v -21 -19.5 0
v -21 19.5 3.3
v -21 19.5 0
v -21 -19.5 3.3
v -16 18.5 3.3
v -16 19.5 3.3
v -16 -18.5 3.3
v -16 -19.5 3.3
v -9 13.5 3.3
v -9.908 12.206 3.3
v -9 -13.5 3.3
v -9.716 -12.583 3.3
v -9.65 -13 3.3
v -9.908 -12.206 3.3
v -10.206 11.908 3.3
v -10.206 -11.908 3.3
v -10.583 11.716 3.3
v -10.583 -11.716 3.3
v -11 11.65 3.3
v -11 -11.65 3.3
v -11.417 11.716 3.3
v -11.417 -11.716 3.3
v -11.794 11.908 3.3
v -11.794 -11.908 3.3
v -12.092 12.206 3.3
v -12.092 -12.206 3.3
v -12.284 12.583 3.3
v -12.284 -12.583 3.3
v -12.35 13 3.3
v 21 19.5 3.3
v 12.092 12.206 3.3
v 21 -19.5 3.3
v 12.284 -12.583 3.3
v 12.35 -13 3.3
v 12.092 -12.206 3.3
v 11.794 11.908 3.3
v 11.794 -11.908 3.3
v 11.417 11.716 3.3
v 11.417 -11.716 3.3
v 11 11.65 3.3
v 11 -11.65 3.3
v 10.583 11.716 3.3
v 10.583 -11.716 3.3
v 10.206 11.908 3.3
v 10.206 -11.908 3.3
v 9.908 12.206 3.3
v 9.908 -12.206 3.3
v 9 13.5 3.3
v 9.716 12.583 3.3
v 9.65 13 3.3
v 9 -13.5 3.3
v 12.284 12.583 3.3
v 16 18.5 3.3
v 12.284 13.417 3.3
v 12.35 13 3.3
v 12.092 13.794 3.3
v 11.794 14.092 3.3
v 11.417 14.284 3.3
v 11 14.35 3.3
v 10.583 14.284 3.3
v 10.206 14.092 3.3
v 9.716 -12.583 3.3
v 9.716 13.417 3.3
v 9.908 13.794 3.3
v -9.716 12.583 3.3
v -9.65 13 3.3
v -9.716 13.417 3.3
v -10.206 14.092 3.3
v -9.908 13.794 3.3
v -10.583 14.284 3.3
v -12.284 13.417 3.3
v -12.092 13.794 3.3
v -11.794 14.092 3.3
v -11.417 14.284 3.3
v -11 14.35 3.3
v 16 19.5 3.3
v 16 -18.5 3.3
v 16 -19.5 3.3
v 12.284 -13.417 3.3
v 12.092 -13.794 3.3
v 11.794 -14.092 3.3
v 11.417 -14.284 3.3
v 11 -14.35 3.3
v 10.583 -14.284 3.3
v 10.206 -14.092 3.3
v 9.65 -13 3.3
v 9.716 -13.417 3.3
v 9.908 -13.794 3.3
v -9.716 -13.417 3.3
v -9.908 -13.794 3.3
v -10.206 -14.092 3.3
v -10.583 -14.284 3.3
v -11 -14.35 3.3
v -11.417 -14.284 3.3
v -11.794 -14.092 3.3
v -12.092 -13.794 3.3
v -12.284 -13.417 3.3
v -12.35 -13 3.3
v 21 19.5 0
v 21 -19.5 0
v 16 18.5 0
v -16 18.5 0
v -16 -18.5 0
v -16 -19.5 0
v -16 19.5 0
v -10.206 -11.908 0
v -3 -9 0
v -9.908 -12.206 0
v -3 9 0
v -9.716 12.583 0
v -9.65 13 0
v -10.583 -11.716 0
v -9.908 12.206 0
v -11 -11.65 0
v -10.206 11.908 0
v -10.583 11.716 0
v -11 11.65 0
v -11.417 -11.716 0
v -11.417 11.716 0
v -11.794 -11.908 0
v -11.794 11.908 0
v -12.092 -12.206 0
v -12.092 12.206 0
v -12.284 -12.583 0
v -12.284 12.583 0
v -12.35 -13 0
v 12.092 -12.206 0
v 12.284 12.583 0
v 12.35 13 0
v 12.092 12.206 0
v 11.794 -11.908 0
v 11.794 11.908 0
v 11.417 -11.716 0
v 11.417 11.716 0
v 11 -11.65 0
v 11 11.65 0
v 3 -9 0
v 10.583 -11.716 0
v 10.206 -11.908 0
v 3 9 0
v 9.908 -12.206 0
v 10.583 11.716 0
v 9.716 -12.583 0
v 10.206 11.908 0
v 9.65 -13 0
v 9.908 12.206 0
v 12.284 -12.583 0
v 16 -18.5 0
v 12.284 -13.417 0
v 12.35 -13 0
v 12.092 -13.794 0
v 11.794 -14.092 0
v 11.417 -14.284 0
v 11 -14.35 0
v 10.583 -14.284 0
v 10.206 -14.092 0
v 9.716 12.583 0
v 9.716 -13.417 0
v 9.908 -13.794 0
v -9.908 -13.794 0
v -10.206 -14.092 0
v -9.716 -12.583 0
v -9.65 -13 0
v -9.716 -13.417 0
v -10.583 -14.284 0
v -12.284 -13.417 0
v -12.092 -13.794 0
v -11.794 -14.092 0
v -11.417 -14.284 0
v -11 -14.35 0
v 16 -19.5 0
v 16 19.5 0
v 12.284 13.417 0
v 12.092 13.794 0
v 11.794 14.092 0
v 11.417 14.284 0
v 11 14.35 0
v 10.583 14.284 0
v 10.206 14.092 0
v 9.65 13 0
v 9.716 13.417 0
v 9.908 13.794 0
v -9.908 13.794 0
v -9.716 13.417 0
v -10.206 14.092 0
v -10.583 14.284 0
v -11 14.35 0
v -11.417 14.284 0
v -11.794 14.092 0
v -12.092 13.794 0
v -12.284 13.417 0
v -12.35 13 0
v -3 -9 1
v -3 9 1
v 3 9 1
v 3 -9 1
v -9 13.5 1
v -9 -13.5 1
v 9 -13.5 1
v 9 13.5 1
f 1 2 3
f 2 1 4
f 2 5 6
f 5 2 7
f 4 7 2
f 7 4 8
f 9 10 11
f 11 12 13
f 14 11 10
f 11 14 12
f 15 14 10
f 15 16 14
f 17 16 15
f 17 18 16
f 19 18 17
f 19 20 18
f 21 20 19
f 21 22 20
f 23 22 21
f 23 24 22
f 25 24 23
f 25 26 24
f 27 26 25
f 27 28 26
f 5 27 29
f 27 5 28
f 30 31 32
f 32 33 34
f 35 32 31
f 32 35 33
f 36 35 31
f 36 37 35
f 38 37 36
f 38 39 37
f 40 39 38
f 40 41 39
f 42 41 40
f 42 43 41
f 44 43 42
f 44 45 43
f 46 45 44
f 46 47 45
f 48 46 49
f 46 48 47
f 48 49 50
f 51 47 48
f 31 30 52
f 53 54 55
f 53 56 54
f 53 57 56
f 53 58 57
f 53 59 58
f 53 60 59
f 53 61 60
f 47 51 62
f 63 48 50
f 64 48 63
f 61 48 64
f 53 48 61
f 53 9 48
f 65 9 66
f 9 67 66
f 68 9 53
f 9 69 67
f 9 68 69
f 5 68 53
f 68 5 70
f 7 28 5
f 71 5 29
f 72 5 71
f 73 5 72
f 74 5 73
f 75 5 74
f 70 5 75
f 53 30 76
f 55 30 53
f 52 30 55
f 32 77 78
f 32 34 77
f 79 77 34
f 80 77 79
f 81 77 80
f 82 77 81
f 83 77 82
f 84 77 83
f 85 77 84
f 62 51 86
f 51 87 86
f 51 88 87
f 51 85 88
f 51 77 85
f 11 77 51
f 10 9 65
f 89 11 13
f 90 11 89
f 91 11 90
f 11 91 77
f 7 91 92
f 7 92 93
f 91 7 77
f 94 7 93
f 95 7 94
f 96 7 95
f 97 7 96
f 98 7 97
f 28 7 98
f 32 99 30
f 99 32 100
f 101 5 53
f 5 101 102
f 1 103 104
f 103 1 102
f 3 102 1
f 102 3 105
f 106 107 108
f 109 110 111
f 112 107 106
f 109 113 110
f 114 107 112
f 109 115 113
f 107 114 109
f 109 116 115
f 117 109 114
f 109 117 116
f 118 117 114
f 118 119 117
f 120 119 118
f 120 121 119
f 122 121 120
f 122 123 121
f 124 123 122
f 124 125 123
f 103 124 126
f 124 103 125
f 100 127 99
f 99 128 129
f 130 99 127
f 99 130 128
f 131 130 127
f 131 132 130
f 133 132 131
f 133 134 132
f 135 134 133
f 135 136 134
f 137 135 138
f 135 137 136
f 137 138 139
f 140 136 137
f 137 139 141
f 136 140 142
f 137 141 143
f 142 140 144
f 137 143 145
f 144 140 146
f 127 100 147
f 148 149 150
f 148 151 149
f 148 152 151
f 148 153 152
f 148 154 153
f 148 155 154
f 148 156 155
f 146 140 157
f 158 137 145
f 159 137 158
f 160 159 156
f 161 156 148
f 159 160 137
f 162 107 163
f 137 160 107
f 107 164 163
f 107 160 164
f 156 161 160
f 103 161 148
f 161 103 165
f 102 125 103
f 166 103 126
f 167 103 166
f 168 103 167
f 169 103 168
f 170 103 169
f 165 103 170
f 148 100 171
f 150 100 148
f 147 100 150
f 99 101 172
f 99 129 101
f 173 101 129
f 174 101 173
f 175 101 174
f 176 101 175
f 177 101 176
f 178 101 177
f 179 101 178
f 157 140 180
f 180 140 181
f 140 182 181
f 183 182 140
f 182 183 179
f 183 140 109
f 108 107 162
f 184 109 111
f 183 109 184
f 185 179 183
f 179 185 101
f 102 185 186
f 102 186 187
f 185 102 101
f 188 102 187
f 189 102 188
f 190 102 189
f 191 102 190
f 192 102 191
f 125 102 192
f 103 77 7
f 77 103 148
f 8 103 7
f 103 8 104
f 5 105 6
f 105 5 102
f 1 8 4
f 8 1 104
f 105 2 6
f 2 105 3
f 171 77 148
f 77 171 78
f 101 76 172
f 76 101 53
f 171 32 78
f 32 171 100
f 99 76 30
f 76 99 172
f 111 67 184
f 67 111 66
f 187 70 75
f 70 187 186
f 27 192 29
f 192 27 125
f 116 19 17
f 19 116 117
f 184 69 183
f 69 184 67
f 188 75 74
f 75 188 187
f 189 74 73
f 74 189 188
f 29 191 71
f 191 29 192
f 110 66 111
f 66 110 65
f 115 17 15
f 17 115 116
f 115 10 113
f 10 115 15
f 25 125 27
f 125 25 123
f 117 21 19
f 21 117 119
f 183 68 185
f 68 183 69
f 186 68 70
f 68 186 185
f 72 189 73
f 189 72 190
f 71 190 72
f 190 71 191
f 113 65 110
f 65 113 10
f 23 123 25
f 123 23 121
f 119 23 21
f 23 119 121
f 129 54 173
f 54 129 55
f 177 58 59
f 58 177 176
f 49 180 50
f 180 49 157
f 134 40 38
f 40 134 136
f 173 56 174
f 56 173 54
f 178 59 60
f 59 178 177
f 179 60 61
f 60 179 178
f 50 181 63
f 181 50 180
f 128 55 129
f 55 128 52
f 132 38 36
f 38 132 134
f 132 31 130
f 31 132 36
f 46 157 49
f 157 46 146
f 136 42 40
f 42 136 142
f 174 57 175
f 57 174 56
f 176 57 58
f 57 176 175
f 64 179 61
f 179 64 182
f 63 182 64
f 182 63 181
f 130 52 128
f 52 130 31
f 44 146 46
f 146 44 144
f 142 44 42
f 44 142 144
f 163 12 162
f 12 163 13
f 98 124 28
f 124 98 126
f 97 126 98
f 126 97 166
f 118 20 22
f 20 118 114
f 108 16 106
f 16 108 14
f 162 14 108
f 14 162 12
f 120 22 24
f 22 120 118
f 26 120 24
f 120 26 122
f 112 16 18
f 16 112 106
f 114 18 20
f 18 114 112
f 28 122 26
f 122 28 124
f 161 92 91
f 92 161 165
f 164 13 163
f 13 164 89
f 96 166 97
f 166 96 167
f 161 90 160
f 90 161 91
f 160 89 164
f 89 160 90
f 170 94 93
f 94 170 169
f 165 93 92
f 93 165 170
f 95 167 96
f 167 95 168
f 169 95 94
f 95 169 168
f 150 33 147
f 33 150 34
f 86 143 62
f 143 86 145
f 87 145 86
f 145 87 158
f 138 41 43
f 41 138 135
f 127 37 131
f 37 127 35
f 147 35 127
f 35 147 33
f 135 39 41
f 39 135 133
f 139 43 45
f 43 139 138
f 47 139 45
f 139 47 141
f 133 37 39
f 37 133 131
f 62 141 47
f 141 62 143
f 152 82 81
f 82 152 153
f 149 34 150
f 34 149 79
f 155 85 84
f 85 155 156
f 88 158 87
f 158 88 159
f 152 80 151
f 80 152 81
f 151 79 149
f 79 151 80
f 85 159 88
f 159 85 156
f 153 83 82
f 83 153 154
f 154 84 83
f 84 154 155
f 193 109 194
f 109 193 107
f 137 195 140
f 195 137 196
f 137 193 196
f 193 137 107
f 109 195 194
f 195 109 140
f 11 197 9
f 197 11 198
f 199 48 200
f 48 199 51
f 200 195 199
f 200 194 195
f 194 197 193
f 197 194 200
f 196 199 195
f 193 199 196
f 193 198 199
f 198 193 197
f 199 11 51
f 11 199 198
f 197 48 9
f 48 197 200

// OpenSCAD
// file: Diffracter.scad
//include <Tapa.scad>
include <../../library.scad>


bigW = 88;
ori = bigW/2;
raspSellR = 59;
tuboH = 140;
H = 18.5 + 9;
selloH = 7;
tornR = 2;

huecoPared = 12;
huecoH = 22;
selloHembraRadio=40;

//Activate this to display
if(0)
{
//translate([0,0,bigW/2])
//rotate([0,90,0])
diffracter();


//soporteCylinder(radio=25.2,altura=3.8);

}


module diffracter(){	

difference(){

//Bloque
translate([-bigW/2,-bigW/2,0])
cube([bigW,bigW,H]);

/*
translate([
						-(bigW-huecoPared)/2,
						-(bigW-huecoPared)/2,
						(huecoH/2)
					])
		cube([
					bigW-huecoPared,
					bigW-huecoPared,
					H-huecoH]
				);*/


//Diffractador
translate([-37.25,-40,-0.1])
cube([74.5,80,5.6]);

//Macro
translate([0,0,5.4])
cylinder(r=(74.5/2),8.2,$fn=100);

//Sello de raspberry
//translate([0,0,-0.1])
//cylinder(r=(raspSellR/2)+1,2);

//Tubo
//translate([0,0,-0.1])
//cylinder(r=(52/2),200);

//Tornillos abajo
translate([-ori+4,-ori+4,-0.1])
cylinder(r=tornR,20);
translate([ori-4,-ori+4,-0.1])
cylinder(r=tornR,20);
translate([-ori+4,ori-4,-0.1])
cylinder(r=tornR,20);
translate([ori-4,ori-4,-0.1])
cylinder(r=tornR,20);

//Hueco
cylinder(r=36,H+1);

//Tornillos caja
translate([0,0,(tuboH/2)-7])
rotate([0,90,0])
tornillosArriba();

//Tornillo tripie
translate([-ori-0.1,0,(tuboH/2)+7])
rotate([0,90,0])
cylinder(r=5/2,5.31);

//Sello hembra
//translate([0,0,H-3])
//cylinder(r=selloHembraRadio,4);

}

//Sello cobertura
//translate([0,0,H-1])
//huyoMasPared(58,3,3);


}
// file: ../../library.scad
module tubo(
	h/*Altura*/,
	w/*Pared*/,
	d/*Diametro*/
){
  difference()
  {
    cylinder(r=(d/2), h);
    translate([0,0,-0.1])
    cylinder(r=(d/2)-(2*w), h+0.2);
  }
}

module huyoMasPared(
	d/*Diametro del hoyo*/,
	w/*Pared*/,
	h/*Altura*/,
){
  difference()
  {
    cylinder(r=((d+(2*w))/2), h);
    translate([0,0,-0.1])
    cylinder(r=(d/2), h+0.2);
  }
}

module cuboMasPared(
    w1, //Largo
    w2, //Ancho
    p1, //Pared
    p2, //Pared
    h   //Alto
)
{    
    difference()
    {
        translate([-(w1+(p1*2))/2,-(w2+(p2*2))/2,0])
        cube([(w1+(p1*2)),(w2+(p2*2)),h]);
        
        translate([-w1/2,-w2/2,-0.2])
        cube([w1,w2,h*2]);
        
    }
    
    
}

soporteW = 0.7;

module soporteCylinder()
{
  difference()
  {
	cylinder(r=radio,altura);

	translate([0,0,-0.1])
	cylinder(r=radio-soporteW,altura+0.2);
  }

  if(true){
  difference()
  {
	cylinder(r=radio+0.75,1);

	translate([0,0,-0.1])
	cylinder(r=radio-0.75,1.25);
  }}

}

module soporteOval()
{
  difference()
  {
	oval(w=ancho, h=largo, height=alto, center = false);

	translate([0,0,-0.1])
	oval(ancho-soporteW, largo, alto+0.2);
  }

  difference()
  {
	oval(w=ancho+1, h=largo+1, height=1, center = false);

	translate([0,0,-0.1])
	oval(w=ancho-1, h=largo-1, height=1.25, center = false);
  }

}


module oval(w,h, height, center = false)
{
  scale([1, h/w, 1]) cylinder(h=height, r=w, center=center);
}
// file: navaja.scad
include <../../library.scad>
include <Diffracter.scad>
//include <lente.scad>

pared = 3;


//lenRIntNavajas = 19/2;
lenIntHNavajas = 4;//3.6

offsetRanura = -0.35;//-.
offsetNavaja = 0.5;//0
offsetPosDer = 0.0;

navW = 21.5+offsetNavaja;
navH = 43;
navP = 3;//3
navTorR = 1.35;//1.2
navSepW = 9.2+offsetRanura;
navSepH = 2;


navBigW = (navW*2) + (pared*2);
navBigH = navH + pared;

navajasH = navP+lenIntHNavajas;

navajasH = 6;//8 //Quitar para altura real

soloProbar = 0;

navHoleRad = 14;

if( 0 )
{
    if( soloProbar )
    {
        difference()
        {
            translate([0,0,navajasH])
            rotate([0,180,0])
            creaNavajas( navajasH );
            
            translate([0,0,-0.2])
            cuboMasPared(49,49,30,30,15);
            
        }
    }
    else
    {
        translate([0,0,navajasH])
        rotate([0,180,0])
        creaNavajas( navajasH );
    }
}




module creaNavajas( intH )
{


//%cylinder(r=34,15);
difference()
{
    //Área navajas-lente
    translate([-bigW/2,-bigW/2,0])
    cube([bigW,bigW,intH]);
    
    //Recorte área navaja
    translate([-navW-offsetPosDer,-navH/2,-0.1])
    cube([(navW*2),navH,navP]);
    
    //Área tapón
    //translate([0,0,navP-0.4])
    cylinder(r=navHoleRad,intH+0.1);
    
    //Tornillitos
    translate([-navW/2,13,0])
    cylinder(r=navTorR,navP+lenIntHNavajas-0.1,$fn=20);
    translate([navW/2,13,0])
    cylinder(r=navTorR,navP+lenIntHNavajas-0.1,$fn=20);
    translate([-navW/2,-13,0])
    cylinder(r=navTorR,navP+lenIntHNavajas-0.1,$fn=20);
    translate([navW/2,-13,0])
    cylinder(r=navTorR,navP+lenIntHNavajas-0.1,$fn=20);
    
    //Tornillos abajo
    translate([-ori+4,-ori+4,-0.1])
    cylinder(r=tornR,20,$fn=20);
    translate([ori-4,-ori+4,-0.1])
    cylinder(r=tornR,20,$fn=20);
    translate([-ori+4,ori-4,-0.1])
    cylinder(r=tornR,20,$fn=20);
    translate([ori-4,ori-4,-0.1])
    cylinder(r=tornR,20,$fn=20);
    
    //Sello
    translate([0,0,-0.1])
    huyoMasPared(
                   64,//73
                   35,//30
                   intH+1
                  );
    //translate([0,0,-0.1])
    //cylinder(r=selloHembraRadio,4);
    
}

//translate([0,0,pared-lenP+0.2])
//translate([0,0,navajasH-lenP+0.4])
//thread_in_pitch(lenDiam,lenP,1.7);

translate([-navSepW/2,-navH/2,0])
cube([navSepW,navSepH,navP]);

translate([-(navSepW/2),(navH/2)-navSepH,0])
cube([navSepW,navSepH,navP]);



}
// main file
include <navaja.scad>



pasaSlideW = 6;
pasaSlideH = 18;
pasaSlideP = 3.3;

pasaSlideW2 = 18;
pasaSlideH2 = 27;
pasaSlideDesp = 1;

difference()
{
//El área de trabajo
areaTapaNavajas();
    
 //Tornillitos
translate([-navW/2,13,-0.1])
cylinder(r=navTorR,navP+lenIntHNavajas-0.1,$fn=20);
translate([navW/2,13,-0.1])
cylinder(r=navTorR,navP+lenIntHNavajas-0.1,$fn=20);
translate([-navW/2,-13,-0.1])
cylinder(r=navTorR,navP+lenIntHNavajas-0.1,$fn=20);
translate([navW/2,-13,-0.1])
cylinder(r=navTorR,navP+lenIntHNavajas-0.1,$fn=20);  

//Ranuras
translate([-pasaSlideW/2,-pasaSlideH/2,-0.1])
cube([pasaSlideW,pasaSlideH,pasaSlideP+0.5]);
    
translate([-pasaSlideW2/2,-pasaSlideH2/2,pasaSlideDesp])
cube([pasaSlideW2,pasaSlideH2,pasaSlideP+0.5]);

}

module areaTapaNavajas()
{
    
    translate([
            -((navW*2)-2)/2,
            -((navH-(navSepH*2))-2)/2,
            0]
        )
    cube([(navW*2)-2,(navH-(navSepH*2)-2),pasaSlideP]);

    translate([-navW+1,-(navH-(navSepH*2))/2,0])
    cube([5,(navH-(navSepH*2)),pasaSlideP]);

    translate([navW-5-1,-(navH-(navSepH*2))/2,0])
    cube([5,(navH-(navSepH*2)),pasaSlideP]);
    
}
